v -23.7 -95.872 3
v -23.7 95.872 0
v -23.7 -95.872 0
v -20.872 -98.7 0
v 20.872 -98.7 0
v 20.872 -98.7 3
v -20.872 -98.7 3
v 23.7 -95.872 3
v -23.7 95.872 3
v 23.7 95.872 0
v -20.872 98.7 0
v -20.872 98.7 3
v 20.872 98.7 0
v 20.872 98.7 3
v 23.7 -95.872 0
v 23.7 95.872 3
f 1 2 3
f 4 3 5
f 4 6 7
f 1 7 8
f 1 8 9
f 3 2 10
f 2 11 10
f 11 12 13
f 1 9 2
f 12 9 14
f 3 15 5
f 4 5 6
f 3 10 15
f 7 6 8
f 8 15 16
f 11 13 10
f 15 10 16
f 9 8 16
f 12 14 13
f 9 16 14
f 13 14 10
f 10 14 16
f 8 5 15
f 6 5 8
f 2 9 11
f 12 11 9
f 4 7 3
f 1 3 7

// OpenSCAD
// file: Inlet.scad
$fn = 100;
tiny = 0.01;


/******************************************************
 * dx,dy: Maße, wie bei 'Boden' angegeben.
 *****************************************************/
module inlet_top_down(dx,dy) {
  h1 = 3;  
  dx1 = 6.3;
  dx2 = 4.0; // vier mal Fase an Ecken

  difference() {
     translate([0,0,h1/2]) cube([dx-2*dx1,dy-2*dx1,h1], true); 
     translate([+dx/2-dx1,+dy/2-dx1,h1/2-tiny]) rotate([0,0,45]) cube([dx2,dx2,h1+3*tiny], true);
     translate([+dx/2-dx1,-dy/2+dx1,h1/2-tiny]) rotate([0,0,45]) cube([dx2,dx2,h1+3*tiny], true);
     translate([-dx/2+dx1,+dy/2-dx1,h1/2-tiny]) rotate([0,0,45]) cube([dx2,dx2,h1+3*tiny], true);
     translate([-dx/2+dx1,-dy/2+dx1,h1/2-tiny]) rotate([0,0,45]) cube([dx2,dx2,h1+3*tiny], true);
     }
}
// main file
$fn = 100;
tiny = 0.01;

use <Inlet.scad>

inlet_top_down(60,210);
